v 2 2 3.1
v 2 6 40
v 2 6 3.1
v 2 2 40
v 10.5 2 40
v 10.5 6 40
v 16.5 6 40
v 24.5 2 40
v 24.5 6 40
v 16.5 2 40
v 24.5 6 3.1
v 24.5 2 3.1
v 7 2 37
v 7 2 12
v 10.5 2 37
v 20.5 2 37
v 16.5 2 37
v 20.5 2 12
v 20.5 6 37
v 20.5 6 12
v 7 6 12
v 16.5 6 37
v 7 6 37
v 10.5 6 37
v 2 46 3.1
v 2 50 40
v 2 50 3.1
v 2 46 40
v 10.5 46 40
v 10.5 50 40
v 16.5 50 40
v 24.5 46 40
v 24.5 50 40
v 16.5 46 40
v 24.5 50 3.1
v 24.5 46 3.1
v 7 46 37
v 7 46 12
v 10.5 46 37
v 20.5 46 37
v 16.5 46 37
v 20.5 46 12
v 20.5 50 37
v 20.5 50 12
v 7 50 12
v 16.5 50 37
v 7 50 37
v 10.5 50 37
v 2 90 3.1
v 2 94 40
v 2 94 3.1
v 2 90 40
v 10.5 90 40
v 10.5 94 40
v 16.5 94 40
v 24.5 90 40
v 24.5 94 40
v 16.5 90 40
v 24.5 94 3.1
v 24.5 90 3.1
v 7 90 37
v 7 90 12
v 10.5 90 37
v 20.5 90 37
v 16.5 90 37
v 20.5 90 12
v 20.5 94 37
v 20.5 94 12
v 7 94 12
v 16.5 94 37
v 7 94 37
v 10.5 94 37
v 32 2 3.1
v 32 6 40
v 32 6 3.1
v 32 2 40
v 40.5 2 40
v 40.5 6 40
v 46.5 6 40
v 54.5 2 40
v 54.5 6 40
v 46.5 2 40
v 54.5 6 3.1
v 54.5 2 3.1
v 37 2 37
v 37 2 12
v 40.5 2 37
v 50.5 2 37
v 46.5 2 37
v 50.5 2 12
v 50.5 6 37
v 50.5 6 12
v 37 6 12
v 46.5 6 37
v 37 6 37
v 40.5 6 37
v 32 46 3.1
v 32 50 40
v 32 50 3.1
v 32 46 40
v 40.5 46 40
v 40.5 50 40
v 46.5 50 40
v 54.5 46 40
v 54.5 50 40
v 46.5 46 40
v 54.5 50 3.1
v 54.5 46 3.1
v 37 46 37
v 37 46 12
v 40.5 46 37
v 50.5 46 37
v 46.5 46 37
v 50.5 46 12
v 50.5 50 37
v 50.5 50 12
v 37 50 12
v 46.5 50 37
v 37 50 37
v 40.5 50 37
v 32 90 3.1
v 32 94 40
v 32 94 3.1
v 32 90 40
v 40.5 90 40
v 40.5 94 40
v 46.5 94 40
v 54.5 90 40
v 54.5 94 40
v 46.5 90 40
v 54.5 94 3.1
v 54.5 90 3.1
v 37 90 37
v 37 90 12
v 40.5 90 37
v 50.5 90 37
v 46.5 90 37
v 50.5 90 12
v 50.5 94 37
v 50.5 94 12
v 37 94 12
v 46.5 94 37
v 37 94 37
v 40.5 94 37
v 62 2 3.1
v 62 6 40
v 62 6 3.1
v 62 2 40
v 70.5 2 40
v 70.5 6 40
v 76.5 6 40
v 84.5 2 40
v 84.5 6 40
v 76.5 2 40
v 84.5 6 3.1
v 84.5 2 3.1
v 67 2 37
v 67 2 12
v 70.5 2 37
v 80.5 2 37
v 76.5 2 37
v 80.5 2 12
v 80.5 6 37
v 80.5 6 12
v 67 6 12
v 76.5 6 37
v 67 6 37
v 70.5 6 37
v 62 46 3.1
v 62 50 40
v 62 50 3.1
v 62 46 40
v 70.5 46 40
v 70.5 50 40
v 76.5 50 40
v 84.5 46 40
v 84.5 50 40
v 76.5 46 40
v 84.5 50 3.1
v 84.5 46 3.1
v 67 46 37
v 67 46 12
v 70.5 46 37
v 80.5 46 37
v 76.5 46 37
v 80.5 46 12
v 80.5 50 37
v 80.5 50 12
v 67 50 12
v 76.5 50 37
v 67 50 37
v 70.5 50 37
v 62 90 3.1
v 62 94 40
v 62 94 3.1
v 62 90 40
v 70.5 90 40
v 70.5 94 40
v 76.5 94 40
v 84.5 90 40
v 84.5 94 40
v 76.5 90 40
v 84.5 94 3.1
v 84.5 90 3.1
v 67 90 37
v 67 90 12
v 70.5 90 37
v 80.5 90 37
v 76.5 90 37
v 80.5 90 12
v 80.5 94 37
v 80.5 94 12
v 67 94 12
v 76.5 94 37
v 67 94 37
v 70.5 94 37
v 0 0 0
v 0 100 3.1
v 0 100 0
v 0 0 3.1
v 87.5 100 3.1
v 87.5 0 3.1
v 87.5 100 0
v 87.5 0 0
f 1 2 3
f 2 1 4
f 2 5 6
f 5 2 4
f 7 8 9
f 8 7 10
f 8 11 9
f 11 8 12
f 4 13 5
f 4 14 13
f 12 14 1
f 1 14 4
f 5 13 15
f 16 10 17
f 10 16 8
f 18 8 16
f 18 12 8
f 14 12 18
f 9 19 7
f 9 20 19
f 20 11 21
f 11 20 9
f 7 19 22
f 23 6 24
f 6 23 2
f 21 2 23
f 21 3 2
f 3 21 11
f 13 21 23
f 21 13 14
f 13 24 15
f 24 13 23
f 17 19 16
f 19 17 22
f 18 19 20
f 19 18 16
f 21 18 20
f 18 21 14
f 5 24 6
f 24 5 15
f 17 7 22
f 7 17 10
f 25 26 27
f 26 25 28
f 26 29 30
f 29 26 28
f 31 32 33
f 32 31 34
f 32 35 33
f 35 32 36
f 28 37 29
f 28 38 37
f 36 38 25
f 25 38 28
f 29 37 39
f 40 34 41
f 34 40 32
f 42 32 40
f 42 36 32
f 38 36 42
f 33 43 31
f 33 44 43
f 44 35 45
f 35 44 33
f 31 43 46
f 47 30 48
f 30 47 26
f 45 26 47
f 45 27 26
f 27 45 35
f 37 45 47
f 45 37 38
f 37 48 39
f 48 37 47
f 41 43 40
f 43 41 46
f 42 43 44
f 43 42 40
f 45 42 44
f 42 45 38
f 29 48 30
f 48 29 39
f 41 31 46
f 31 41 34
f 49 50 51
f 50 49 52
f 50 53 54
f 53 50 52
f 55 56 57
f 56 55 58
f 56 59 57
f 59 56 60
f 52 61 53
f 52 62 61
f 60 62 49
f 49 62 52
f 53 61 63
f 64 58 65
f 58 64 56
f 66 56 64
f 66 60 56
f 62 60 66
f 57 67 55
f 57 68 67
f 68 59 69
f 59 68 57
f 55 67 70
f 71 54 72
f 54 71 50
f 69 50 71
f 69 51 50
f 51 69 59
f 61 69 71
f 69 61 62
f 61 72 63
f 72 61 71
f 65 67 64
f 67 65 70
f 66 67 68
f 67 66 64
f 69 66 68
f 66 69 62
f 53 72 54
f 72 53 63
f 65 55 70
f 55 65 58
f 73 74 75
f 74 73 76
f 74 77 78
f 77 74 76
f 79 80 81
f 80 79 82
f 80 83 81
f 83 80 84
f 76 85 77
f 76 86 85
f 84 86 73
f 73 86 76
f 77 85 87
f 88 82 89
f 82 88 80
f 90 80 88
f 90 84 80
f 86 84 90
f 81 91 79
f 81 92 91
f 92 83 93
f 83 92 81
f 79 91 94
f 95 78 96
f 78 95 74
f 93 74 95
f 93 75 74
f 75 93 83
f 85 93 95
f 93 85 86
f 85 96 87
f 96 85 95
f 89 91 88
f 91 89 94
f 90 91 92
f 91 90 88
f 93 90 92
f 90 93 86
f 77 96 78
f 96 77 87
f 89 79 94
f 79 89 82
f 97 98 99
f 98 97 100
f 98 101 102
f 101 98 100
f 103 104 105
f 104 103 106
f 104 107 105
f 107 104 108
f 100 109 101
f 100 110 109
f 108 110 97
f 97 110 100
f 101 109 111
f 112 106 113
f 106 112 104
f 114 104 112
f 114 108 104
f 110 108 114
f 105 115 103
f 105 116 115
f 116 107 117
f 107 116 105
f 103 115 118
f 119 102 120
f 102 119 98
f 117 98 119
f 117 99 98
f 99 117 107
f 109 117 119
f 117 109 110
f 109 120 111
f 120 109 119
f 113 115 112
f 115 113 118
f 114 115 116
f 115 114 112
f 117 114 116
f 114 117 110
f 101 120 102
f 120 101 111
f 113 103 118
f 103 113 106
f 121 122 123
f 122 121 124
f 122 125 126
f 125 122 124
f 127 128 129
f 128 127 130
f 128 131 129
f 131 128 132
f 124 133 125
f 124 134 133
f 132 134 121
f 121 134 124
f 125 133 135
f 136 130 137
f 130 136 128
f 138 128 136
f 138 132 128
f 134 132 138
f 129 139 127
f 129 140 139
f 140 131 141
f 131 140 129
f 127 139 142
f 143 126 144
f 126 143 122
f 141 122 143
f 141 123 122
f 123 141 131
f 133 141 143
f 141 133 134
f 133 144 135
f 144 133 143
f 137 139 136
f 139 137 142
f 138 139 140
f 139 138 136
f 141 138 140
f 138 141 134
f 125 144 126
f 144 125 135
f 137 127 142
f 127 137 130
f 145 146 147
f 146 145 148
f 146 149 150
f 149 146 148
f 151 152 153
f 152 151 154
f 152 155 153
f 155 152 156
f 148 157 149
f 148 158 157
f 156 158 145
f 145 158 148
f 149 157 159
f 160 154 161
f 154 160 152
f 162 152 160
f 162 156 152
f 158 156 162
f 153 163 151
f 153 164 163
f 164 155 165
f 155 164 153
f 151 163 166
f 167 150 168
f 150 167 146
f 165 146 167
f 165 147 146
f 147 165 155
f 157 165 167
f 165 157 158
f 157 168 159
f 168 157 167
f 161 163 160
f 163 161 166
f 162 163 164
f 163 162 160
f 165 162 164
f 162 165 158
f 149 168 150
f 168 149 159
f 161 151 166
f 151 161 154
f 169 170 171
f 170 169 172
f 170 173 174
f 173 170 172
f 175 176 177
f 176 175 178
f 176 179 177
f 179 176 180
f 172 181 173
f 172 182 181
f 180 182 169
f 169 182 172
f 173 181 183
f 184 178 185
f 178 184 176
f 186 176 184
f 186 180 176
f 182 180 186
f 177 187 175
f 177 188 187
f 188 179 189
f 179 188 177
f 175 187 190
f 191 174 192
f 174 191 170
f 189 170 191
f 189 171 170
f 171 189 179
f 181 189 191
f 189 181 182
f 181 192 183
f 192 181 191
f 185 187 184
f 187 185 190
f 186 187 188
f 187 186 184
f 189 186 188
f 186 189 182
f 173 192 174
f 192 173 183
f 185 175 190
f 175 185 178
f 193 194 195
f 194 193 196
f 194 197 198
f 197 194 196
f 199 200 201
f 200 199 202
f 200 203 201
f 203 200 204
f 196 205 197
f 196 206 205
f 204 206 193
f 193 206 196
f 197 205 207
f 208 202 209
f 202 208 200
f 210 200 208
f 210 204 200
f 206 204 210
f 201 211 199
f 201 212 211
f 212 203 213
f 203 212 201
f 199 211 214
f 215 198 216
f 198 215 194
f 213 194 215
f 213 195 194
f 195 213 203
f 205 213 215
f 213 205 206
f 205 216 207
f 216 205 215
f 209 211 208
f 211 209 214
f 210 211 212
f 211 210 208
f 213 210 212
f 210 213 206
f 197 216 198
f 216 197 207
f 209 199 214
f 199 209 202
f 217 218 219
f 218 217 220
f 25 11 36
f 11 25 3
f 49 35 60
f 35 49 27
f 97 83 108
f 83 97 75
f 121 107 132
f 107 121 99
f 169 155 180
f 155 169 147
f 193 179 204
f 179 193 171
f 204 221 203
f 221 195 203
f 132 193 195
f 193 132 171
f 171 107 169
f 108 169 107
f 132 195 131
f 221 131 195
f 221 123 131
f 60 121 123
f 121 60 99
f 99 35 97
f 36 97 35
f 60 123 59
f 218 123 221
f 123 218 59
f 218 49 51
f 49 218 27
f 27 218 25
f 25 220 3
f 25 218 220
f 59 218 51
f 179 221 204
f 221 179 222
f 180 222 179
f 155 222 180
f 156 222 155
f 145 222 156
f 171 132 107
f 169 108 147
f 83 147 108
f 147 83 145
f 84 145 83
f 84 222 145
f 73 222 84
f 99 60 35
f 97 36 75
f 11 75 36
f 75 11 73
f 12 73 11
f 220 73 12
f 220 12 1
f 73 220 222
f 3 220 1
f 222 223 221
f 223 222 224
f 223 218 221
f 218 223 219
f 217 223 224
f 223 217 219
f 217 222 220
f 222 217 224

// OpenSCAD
module bracket() {
    // servo test bracket.
    difference() {
        cube([22.5,4,37]);
        translate([5,-0.01,9])
        cube([13.5,4.1,25]);
        translate([8.5,-0.01,31.99])
        cube([6,4.1,6]);
    }
}
//bracket();

for (i = [2,32,62]) {
    for(j = [0:2]) {
        translate([i,j*44 + 2,3])
        bracket();
    }
}

//base
cube([87.5,100,3.1]);
